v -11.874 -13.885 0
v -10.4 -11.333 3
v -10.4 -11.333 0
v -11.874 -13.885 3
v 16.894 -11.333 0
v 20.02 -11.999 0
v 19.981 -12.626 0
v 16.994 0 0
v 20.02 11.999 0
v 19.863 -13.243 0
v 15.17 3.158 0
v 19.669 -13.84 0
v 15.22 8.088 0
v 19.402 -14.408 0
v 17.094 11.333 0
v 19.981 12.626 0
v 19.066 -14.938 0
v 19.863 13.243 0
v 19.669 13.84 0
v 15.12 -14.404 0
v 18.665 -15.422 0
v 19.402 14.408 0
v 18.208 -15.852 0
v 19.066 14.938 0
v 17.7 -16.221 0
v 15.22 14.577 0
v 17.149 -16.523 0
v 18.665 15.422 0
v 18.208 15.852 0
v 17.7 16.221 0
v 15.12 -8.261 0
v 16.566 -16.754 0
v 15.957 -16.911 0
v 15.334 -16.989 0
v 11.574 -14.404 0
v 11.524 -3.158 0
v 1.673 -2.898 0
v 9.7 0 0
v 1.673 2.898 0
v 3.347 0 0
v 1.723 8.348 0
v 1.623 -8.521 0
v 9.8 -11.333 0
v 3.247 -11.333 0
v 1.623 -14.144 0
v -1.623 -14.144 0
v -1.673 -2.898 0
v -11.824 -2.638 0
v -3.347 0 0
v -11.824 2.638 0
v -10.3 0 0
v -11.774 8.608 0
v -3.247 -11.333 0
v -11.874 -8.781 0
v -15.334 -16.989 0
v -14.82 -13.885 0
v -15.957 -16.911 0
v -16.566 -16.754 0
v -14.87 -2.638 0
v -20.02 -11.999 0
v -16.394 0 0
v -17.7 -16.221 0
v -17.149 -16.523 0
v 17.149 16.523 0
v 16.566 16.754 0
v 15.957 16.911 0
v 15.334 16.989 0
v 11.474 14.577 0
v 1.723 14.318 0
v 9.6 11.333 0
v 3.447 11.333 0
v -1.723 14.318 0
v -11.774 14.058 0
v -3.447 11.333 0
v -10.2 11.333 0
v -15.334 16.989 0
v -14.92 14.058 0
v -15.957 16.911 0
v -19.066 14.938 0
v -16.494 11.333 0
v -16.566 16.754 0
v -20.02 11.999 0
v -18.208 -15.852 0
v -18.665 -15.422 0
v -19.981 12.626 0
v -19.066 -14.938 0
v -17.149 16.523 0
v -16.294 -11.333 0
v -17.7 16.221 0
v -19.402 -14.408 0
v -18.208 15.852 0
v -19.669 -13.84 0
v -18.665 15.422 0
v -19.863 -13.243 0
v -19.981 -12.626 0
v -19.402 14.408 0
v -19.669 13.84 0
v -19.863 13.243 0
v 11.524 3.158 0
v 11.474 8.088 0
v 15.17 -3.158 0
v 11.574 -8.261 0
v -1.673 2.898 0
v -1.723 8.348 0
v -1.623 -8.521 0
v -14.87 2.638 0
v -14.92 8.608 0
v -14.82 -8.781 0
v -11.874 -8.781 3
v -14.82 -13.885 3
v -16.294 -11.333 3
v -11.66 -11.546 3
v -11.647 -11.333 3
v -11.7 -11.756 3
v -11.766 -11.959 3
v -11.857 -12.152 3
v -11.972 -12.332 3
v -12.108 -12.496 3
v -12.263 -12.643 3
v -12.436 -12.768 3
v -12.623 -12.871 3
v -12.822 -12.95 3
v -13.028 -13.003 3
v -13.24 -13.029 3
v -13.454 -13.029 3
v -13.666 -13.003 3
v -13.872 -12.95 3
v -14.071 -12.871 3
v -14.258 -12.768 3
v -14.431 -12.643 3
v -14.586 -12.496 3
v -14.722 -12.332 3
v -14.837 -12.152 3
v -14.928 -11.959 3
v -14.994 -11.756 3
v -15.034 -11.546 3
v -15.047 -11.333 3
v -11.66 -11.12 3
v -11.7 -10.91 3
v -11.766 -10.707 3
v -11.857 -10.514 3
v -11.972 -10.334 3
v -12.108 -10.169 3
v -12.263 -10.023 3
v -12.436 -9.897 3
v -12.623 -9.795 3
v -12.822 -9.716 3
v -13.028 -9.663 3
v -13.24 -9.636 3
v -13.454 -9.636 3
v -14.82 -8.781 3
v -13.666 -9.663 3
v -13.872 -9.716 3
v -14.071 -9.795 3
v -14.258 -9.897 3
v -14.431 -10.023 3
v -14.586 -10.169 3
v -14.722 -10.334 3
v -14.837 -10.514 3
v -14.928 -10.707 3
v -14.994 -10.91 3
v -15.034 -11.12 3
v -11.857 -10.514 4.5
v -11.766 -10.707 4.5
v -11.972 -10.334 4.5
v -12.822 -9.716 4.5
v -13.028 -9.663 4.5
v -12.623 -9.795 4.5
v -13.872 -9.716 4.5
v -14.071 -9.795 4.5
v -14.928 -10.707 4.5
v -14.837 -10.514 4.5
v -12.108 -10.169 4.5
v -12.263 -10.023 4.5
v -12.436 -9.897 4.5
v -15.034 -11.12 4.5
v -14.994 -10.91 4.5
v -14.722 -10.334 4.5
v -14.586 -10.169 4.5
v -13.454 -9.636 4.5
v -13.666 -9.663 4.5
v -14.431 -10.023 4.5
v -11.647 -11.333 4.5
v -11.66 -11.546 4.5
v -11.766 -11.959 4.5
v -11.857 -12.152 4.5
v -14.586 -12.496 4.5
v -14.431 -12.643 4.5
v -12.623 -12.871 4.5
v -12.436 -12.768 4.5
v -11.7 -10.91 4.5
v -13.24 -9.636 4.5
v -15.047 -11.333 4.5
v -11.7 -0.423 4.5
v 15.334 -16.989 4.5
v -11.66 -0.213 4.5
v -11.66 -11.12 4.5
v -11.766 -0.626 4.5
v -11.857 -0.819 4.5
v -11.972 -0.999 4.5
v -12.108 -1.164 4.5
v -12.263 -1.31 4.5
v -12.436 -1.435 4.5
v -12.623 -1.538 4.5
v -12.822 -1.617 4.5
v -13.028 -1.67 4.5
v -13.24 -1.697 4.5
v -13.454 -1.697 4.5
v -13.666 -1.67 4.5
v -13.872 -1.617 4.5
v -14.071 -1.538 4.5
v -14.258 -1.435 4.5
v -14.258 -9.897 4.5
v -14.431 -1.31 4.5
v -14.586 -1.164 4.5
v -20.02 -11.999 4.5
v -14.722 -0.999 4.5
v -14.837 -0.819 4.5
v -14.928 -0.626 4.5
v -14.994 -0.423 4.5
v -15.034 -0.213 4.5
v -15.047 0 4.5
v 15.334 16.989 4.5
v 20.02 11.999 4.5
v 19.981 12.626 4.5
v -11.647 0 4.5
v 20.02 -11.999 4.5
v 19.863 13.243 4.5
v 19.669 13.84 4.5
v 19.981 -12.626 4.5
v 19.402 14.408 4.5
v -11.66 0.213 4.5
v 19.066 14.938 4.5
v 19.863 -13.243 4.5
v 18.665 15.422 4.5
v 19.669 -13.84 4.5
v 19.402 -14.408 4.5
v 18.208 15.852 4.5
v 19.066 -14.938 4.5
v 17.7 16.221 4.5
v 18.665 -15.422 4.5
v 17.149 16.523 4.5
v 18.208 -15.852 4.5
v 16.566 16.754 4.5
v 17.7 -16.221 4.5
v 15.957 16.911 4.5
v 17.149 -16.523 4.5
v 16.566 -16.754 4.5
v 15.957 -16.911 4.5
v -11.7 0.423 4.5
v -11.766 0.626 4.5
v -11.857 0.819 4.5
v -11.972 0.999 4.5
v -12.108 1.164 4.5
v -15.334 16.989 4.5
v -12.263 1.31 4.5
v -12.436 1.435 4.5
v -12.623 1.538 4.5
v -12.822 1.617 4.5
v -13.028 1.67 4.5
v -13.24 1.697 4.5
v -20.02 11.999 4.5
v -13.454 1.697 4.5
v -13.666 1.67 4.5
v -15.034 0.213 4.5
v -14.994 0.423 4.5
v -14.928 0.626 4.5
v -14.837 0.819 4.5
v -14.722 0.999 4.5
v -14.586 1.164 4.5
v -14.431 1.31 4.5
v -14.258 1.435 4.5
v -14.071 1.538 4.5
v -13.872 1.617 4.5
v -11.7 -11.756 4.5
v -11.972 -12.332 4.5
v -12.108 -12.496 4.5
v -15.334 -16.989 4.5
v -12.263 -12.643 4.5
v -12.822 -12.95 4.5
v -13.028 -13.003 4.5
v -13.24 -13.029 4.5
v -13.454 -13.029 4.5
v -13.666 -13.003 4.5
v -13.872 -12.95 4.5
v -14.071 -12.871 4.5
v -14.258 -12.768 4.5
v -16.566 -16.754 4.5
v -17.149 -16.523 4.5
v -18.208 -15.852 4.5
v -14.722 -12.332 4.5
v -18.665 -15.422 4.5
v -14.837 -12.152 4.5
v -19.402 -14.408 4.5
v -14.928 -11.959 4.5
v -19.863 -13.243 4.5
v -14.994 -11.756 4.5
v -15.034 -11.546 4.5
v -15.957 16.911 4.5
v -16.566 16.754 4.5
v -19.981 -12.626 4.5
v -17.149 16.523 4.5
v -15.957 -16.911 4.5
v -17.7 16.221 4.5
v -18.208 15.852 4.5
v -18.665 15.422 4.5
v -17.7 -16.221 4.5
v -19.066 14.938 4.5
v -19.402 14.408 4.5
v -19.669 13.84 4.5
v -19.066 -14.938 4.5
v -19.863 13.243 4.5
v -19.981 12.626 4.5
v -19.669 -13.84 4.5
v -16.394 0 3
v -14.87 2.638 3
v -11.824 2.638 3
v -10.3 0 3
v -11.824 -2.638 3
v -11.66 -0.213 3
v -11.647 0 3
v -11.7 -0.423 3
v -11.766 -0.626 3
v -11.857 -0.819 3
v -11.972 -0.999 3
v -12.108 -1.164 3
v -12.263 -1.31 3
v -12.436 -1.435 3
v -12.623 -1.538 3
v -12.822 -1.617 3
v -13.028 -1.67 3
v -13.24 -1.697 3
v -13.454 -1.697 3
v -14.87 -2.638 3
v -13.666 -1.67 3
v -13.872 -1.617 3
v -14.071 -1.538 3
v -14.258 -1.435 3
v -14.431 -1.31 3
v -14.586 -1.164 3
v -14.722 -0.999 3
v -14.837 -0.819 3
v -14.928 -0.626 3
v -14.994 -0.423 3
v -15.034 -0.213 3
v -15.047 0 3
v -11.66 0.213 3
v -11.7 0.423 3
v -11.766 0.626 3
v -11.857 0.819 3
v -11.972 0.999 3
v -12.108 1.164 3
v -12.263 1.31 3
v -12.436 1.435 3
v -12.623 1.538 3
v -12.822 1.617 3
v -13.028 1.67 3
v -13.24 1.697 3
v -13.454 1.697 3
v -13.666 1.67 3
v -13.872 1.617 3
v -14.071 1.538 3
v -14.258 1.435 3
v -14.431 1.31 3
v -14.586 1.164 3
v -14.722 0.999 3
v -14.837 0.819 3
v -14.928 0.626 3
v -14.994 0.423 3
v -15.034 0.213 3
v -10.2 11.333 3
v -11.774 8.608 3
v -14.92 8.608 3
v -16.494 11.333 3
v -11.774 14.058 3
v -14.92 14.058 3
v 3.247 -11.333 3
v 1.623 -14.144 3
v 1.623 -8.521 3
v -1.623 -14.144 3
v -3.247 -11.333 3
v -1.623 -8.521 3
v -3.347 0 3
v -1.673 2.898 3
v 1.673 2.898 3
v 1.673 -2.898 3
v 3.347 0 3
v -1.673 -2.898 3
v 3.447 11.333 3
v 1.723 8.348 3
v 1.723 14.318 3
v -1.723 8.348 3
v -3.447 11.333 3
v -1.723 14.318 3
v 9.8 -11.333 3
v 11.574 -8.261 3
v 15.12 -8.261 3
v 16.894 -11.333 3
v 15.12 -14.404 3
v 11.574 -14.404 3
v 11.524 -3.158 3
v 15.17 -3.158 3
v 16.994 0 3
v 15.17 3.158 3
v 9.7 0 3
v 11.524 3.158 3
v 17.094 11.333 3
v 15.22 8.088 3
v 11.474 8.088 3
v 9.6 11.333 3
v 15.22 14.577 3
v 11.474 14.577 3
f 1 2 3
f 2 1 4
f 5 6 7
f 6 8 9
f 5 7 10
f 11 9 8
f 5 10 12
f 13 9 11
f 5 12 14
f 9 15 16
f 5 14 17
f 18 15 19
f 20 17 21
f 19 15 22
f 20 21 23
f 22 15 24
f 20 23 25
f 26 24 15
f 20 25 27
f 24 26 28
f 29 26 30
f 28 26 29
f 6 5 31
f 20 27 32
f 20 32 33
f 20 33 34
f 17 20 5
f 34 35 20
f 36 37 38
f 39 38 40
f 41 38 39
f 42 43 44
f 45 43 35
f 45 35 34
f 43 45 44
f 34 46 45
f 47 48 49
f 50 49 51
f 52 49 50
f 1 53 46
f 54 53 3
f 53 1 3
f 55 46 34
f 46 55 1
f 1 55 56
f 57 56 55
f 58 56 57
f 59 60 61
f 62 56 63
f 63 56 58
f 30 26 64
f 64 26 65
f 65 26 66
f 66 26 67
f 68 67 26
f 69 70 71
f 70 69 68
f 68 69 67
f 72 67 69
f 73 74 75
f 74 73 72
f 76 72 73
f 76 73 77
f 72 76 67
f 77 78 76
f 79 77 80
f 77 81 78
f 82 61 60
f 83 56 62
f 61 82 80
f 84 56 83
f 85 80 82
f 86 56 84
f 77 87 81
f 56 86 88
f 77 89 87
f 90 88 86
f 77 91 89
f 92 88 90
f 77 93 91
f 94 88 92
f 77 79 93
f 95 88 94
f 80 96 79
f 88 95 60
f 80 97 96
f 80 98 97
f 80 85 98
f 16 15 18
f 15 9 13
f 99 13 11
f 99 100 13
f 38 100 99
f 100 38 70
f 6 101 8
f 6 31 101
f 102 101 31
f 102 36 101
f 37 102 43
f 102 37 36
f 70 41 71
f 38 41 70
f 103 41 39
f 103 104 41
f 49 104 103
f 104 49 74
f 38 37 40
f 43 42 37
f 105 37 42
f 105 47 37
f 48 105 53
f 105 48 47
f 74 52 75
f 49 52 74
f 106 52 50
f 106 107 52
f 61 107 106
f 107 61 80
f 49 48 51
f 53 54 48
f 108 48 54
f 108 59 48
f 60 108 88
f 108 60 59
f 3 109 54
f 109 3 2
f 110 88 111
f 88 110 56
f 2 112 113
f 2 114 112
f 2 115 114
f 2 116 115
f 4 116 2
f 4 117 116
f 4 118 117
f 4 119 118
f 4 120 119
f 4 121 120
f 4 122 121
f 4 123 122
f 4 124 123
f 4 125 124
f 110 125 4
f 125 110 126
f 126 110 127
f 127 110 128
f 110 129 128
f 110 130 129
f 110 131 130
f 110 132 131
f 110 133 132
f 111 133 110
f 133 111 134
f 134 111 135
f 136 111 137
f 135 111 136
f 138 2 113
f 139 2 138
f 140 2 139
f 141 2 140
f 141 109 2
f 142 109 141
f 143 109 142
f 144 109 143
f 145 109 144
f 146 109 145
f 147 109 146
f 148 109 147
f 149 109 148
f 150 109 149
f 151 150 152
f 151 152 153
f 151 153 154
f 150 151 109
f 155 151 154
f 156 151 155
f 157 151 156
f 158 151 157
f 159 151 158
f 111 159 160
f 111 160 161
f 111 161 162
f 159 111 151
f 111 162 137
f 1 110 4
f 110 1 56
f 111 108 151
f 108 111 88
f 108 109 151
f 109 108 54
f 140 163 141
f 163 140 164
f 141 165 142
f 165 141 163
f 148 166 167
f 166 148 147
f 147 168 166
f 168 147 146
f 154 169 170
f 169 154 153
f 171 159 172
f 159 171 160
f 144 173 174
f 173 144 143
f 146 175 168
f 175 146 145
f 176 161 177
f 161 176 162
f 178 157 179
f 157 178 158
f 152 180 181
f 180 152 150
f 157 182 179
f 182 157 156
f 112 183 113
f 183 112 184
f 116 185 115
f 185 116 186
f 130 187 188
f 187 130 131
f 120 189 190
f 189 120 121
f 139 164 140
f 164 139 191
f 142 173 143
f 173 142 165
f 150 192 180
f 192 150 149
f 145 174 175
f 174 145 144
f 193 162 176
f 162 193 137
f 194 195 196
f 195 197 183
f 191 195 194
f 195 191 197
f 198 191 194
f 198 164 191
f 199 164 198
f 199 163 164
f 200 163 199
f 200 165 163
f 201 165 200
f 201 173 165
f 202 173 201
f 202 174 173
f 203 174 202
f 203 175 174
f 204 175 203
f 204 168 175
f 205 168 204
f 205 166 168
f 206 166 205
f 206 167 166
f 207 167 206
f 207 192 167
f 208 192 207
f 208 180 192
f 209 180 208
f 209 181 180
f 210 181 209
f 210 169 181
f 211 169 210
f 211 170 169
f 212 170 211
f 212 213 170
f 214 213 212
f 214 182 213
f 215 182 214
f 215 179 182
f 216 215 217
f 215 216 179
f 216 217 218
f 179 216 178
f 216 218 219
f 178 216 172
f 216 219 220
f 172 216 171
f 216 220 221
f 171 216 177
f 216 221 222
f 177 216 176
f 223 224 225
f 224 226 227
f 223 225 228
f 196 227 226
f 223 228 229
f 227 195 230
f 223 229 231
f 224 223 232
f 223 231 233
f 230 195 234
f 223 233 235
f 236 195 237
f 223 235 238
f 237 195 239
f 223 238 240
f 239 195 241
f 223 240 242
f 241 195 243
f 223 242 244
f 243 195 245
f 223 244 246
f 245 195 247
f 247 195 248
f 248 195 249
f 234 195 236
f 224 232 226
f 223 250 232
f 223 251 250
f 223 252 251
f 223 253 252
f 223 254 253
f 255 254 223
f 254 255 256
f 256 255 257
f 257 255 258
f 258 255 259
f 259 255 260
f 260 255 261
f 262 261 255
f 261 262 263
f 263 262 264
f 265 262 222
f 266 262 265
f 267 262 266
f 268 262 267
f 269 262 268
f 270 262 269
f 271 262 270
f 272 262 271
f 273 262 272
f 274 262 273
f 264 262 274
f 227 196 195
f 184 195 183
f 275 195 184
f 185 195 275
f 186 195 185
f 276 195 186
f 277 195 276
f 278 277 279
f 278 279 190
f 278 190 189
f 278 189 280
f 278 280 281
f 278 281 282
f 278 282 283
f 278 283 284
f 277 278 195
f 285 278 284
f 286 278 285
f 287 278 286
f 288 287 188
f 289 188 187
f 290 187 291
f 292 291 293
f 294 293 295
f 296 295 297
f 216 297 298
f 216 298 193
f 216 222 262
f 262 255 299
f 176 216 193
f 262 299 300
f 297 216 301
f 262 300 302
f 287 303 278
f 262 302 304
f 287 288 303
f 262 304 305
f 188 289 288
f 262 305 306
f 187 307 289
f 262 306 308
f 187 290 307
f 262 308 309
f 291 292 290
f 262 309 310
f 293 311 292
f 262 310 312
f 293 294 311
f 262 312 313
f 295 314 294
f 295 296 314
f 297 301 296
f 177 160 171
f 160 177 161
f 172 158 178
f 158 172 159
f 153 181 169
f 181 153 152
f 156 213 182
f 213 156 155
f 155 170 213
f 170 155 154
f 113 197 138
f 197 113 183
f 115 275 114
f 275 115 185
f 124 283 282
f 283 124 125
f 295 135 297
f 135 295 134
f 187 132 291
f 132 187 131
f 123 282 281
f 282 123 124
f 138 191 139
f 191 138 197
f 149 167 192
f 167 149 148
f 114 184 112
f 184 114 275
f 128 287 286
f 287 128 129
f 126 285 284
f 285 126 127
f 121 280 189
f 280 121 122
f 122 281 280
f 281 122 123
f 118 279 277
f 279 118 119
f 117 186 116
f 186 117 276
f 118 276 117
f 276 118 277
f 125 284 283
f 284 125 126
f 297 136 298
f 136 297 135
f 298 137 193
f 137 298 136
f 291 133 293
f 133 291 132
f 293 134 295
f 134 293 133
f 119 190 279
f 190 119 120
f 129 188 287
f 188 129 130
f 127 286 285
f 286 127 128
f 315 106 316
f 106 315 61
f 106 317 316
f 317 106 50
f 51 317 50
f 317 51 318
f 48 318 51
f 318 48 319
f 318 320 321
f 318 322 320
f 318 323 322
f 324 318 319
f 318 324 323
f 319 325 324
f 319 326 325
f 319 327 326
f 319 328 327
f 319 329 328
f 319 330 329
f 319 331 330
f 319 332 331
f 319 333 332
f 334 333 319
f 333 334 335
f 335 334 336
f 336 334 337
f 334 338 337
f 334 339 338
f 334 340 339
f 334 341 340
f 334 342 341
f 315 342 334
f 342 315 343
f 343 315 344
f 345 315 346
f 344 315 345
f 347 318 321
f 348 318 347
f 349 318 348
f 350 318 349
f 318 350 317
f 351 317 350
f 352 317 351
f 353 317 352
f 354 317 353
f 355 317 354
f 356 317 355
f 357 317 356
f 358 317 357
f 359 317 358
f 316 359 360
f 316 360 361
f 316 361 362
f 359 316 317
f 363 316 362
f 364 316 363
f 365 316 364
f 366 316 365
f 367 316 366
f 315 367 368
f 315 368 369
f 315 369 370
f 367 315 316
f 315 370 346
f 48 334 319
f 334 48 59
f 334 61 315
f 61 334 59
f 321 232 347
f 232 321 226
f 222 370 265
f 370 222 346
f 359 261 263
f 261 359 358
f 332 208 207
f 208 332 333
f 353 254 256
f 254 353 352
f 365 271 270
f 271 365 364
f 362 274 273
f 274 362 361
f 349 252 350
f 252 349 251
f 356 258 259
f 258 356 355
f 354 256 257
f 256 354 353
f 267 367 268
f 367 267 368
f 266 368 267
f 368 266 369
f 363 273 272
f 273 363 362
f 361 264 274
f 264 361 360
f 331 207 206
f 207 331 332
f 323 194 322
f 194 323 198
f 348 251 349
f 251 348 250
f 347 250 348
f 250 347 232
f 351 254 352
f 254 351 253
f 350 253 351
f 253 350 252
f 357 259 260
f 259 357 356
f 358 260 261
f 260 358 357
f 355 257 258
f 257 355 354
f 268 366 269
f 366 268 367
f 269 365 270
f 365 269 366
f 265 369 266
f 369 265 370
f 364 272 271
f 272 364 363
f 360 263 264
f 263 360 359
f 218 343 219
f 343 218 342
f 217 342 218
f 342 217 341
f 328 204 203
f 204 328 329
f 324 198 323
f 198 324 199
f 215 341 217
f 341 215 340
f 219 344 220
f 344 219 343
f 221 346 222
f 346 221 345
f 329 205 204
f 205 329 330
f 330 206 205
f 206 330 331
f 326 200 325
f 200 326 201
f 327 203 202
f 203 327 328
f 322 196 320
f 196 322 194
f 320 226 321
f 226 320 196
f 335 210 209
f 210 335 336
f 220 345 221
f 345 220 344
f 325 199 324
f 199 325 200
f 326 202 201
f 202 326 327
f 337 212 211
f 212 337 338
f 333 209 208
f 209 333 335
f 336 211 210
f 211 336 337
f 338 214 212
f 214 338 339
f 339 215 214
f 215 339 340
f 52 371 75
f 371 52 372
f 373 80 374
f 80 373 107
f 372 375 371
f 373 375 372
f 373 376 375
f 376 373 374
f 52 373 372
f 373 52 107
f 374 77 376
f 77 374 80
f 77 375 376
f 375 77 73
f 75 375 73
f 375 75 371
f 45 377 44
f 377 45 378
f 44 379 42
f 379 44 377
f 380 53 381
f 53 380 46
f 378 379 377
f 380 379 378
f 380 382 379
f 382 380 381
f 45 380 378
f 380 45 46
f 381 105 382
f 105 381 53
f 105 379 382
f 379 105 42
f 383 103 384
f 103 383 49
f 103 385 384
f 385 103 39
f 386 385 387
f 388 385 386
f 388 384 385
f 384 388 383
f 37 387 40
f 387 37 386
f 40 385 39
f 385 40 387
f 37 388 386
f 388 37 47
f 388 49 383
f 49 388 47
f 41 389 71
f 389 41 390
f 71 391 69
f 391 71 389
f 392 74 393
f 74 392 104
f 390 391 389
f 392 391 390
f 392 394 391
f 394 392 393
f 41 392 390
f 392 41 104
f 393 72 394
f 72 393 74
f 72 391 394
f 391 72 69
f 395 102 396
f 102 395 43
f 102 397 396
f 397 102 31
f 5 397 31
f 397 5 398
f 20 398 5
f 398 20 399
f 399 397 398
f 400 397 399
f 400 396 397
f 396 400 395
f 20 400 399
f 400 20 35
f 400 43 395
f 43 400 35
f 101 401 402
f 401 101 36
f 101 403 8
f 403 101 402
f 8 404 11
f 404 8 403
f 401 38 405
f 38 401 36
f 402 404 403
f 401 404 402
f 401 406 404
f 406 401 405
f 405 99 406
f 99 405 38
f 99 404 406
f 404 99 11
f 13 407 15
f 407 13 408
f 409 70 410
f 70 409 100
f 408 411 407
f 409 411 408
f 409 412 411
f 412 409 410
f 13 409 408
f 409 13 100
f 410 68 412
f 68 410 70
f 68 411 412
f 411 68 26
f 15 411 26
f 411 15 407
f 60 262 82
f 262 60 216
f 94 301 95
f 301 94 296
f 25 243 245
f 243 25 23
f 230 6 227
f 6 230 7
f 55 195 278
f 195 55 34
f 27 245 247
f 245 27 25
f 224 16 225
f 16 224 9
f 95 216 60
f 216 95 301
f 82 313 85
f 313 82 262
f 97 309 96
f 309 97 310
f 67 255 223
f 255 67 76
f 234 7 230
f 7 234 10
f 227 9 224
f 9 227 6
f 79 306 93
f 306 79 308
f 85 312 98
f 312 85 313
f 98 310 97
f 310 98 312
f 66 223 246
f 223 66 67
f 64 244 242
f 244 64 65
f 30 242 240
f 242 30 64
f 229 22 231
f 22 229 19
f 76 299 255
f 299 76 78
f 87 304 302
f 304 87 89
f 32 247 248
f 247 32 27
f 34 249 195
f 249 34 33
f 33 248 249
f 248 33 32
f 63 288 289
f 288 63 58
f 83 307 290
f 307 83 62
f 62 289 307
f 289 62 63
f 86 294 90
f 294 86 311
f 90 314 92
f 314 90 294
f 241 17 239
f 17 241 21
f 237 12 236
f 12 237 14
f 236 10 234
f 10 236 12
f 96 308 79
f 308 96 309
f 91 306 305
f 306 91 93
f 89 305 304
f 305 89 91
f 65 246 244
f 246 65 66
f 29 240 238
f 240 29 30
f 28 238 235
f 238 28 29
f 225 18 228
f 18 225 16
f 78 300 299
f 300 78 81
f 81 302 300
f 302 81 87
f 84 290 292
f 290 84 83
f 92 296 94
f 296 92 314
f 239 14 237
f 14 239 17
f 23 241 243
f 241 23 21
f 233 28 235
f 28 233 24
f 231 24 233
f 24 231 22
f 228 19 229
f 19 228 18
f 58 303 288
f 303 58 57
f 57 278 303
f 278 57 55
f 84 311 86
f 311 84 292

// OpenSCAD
$fn = 50;


difference() {
	union() {
		translate(v = [0, 0, 0]) {
			rotate(a = [0, 0, 0]) {
				hull() {
					translate(v = [-15.0205000000, 11.9991334489, 0]) {
						rotate(a = [0, 0, 0]) {
							translate(v = [0, 0, 0]) {
								rotate(a = [0, 0, 0]) {
									cylinder(h = 4.5000000000, r = 5);
								}
							}
						}
					}
					translate(v = [15.0205000000, 11.9991334489, 0]) {
						rotate(a = [0, 0, 0]) {
							translate(v = [0, 0, 0]) {
								rotate(a = [0, 0, 0]) {
									cylinder(h = 4.5000000000, r = 5);
								}
							}
						}
					}
					translate(v = [-15.0205000000, -11.9991334489, 0]) {
						rotate(a = [0, 0, 0]) {
							translate(v = [0, 0, 0]) {
								rotate(a = [0, 0, 0]) {
									cylinder(h = 4.5000000000, r = 5);
								}
							}
						}
					}
					translate(v = [15.0205000000, -11.9991334489, 0]) {
						rotate(a = [0, 0, 0]) {
							translate(v = [0, 0, 0]) {
								rotate(a = [0, 0, 0]) {
									cylinder(h = 4.5000000000, r = 5);
								}
							}
						}
					}
				}
			}
		}
	}
	union() {
		translate(v = [-13.3470000000, -11.3327556326, 0]) {
			rotate(a = [0, 0, 0]) {
				translate(v = [0, 0, 0]) {
					rotate(a = [0, 0, 0]) {
						linear_extrude(height = 3) {
							polygon(points = [[2.9466000000, 0.0000000000], [1.4733000000, 2.5518304548], [-1.4733000000, 2.5518304548], [-2.9466000000, 0.0000000000], [-1.4733000000, -2.5518304548], [1.4733000000, -2.5518304548]]);
						}
					}
				}
			}
		}
		#translate(v = [-13.3470000000, -11.3327556326, 0]) {
			rotate(a = [0, 0, 0]) {
				cylinder(h = 4.5000000000, r = 1.7000000000);
			}
		}
		translate(v = [-13.3470000000, -0.0000000000, 0]) {
			rotate(a = [0, 0, 0]) {
				translate(v = [0, 0, 0]) {
					rotate(a = [0, 0, 0]) {
						linear_extrude(height = 3) {
							polygon(points = [[3.0466000000, 0.0000000000], [1.5233000000, 2.6384329952], [-1.5233000000, 2.6384329952], [-3.0466000000, 0.0000000000], [-1.5233000000, -2.6384329952], [1.5233000000, -2.6384329952]]);
						}
					}
				}
			}
		}
		#translate(v = [-13.3470000000, -0.0000000000, 0]) {
			rotate(a = [0, 0, 0]) {
				cylinder(h = 4.5000000000, r = 1.7000000000);
			}
		}
		translate(v = [-13.3470000000, 11.3327556326, 0]) {
			rotate(a = [0, 0, 0]) {
				translate(v = [0, 0, 0]) {
					rotate(a = [0, 0, 0]) {
						linear_extrude(height = 3) {
							polygon(points = [[3.1466000000, 0.0000000000], [1.5733000000, 2.7250355355], [-1.5733000000, 2.7250355355], [-3.1466000000, 0.0000000000], [-1.5733000000, -2.7250355355], [1.5733000000, -2.7250355355]]);
						}
					}
				}
			}
		}
		translate(v = [0.0000000000, -11.3327556326, 0]) {
			rotate(a = [0, 0, 0]) {
				translate(v = [0, 0, 0]) {
					rotate(a = [0, 0, 0]) {
						linear_extrude(height = 3) {
							polygon(points = [[3.2466000000, 0.0000000000], [1.6233000000, 2.8116380759], [-1.6233000000, 2.8116380759], [-3.2466000000, 0.0000000000], [-1.6233000000, -2.8116380759], [1.6233000000, -2.8116380759]]);
						}
					}
				}
			}
		}
		translate(v = [0.0000000000, -0.0000000000, 0]) {
			rotate(a = [0, 0, 0]) {
				translate(v = [0, 0, 0]) {
					rotate(a = [0, 0, 0]) {
						linear_extrude(height = 3) {
							polygon(points = [[3.3466000000, 0.0000000000], [1.6733000000, 2.8982406163], [-1.6733000000, 2.8982406163], [-3.3466000000, 0.0000000000], [-1.6733000000, -2.8982406163], [1.6733000000, -2.8982406163]]);
						}
					}
				}
			}
		}
		translate(v = [0.0000000000, 11.3327556326, 0]) {
			rotate(a = [0, 0, 0]) {
				translate(v = [0, 0, 0]) {
					rotate(a = [0, 0, 0]) {
						linear_extrude(height = 3) {
							polygon(points = [[3.4466000000, 0.0000000000], [1.7233000000, 2.9848431567], [-1.7233000000, 2.9848431567], [-3.4466000000, 0.0000000000], [-1.7233000000, -2.9848431567], [1.7233000000, -2.9848431567]]);
						}
					}
				}
			}
		}
		translate(v = [13.3470000000, -11.3327556326, 0]) {
			rotate(a = [0, 0, 0]) {
				translate(v = [0, 0, 0]) {
					rotate(a = [0, 0, 0]) {
						linear_extrude(height = 3) {
							polygon(points = [[3.5466000000, 0.0000000000], [1.7733000000, 3.0714456971], [-1.7733000000, 3.0714456971], [-3.5466000000, 0.0000000000], [-1.7733000000, -3.0714456971], [1.7733000000, -3.0714456971]]);
						}
					}
				}
			}
		}
		translate(v = [13.3470000000, -0.0000000000, 0]) {
			rotate(a = [0, 0, 0]) {
				translate(v = [0, 0, 0]) {
					rotate(a = [0, 0, 0]) {
						linear_extrude(height = 3) {
							polygon(points = [[3.6466000000, 0.0000000000], [1.8233000000, 3.1580482374], [-1.8233000000, 3.1580482374], [-3.6466000000, 0.0000000000], [-1.8233000000, -3.1580482374], [1.8233000000, -3.1580482374]]);
						}
					}
				}
			}
		}
		translate(v = [13.3470000000, 11.3327556326, 0]) {
			rotate(a = [0, 0, 0]) {
				translate(v = [0, 0, 0]) {
					rotate(a = [0, 0, 0]) {
						linear_extrude(height = 3) {
							polygon(points = [[3.7466000000, 0.0000000000], [1.8733000000, 3.2446507778], [-1.8733000000, 3.2446507778], [-3.7466000000, 0.0000000000], [-1.8733000000, -3.2446507778], [1.8733000000, -3.2446507778]]);
						}
					}
				}
			}
		}
	}
}
